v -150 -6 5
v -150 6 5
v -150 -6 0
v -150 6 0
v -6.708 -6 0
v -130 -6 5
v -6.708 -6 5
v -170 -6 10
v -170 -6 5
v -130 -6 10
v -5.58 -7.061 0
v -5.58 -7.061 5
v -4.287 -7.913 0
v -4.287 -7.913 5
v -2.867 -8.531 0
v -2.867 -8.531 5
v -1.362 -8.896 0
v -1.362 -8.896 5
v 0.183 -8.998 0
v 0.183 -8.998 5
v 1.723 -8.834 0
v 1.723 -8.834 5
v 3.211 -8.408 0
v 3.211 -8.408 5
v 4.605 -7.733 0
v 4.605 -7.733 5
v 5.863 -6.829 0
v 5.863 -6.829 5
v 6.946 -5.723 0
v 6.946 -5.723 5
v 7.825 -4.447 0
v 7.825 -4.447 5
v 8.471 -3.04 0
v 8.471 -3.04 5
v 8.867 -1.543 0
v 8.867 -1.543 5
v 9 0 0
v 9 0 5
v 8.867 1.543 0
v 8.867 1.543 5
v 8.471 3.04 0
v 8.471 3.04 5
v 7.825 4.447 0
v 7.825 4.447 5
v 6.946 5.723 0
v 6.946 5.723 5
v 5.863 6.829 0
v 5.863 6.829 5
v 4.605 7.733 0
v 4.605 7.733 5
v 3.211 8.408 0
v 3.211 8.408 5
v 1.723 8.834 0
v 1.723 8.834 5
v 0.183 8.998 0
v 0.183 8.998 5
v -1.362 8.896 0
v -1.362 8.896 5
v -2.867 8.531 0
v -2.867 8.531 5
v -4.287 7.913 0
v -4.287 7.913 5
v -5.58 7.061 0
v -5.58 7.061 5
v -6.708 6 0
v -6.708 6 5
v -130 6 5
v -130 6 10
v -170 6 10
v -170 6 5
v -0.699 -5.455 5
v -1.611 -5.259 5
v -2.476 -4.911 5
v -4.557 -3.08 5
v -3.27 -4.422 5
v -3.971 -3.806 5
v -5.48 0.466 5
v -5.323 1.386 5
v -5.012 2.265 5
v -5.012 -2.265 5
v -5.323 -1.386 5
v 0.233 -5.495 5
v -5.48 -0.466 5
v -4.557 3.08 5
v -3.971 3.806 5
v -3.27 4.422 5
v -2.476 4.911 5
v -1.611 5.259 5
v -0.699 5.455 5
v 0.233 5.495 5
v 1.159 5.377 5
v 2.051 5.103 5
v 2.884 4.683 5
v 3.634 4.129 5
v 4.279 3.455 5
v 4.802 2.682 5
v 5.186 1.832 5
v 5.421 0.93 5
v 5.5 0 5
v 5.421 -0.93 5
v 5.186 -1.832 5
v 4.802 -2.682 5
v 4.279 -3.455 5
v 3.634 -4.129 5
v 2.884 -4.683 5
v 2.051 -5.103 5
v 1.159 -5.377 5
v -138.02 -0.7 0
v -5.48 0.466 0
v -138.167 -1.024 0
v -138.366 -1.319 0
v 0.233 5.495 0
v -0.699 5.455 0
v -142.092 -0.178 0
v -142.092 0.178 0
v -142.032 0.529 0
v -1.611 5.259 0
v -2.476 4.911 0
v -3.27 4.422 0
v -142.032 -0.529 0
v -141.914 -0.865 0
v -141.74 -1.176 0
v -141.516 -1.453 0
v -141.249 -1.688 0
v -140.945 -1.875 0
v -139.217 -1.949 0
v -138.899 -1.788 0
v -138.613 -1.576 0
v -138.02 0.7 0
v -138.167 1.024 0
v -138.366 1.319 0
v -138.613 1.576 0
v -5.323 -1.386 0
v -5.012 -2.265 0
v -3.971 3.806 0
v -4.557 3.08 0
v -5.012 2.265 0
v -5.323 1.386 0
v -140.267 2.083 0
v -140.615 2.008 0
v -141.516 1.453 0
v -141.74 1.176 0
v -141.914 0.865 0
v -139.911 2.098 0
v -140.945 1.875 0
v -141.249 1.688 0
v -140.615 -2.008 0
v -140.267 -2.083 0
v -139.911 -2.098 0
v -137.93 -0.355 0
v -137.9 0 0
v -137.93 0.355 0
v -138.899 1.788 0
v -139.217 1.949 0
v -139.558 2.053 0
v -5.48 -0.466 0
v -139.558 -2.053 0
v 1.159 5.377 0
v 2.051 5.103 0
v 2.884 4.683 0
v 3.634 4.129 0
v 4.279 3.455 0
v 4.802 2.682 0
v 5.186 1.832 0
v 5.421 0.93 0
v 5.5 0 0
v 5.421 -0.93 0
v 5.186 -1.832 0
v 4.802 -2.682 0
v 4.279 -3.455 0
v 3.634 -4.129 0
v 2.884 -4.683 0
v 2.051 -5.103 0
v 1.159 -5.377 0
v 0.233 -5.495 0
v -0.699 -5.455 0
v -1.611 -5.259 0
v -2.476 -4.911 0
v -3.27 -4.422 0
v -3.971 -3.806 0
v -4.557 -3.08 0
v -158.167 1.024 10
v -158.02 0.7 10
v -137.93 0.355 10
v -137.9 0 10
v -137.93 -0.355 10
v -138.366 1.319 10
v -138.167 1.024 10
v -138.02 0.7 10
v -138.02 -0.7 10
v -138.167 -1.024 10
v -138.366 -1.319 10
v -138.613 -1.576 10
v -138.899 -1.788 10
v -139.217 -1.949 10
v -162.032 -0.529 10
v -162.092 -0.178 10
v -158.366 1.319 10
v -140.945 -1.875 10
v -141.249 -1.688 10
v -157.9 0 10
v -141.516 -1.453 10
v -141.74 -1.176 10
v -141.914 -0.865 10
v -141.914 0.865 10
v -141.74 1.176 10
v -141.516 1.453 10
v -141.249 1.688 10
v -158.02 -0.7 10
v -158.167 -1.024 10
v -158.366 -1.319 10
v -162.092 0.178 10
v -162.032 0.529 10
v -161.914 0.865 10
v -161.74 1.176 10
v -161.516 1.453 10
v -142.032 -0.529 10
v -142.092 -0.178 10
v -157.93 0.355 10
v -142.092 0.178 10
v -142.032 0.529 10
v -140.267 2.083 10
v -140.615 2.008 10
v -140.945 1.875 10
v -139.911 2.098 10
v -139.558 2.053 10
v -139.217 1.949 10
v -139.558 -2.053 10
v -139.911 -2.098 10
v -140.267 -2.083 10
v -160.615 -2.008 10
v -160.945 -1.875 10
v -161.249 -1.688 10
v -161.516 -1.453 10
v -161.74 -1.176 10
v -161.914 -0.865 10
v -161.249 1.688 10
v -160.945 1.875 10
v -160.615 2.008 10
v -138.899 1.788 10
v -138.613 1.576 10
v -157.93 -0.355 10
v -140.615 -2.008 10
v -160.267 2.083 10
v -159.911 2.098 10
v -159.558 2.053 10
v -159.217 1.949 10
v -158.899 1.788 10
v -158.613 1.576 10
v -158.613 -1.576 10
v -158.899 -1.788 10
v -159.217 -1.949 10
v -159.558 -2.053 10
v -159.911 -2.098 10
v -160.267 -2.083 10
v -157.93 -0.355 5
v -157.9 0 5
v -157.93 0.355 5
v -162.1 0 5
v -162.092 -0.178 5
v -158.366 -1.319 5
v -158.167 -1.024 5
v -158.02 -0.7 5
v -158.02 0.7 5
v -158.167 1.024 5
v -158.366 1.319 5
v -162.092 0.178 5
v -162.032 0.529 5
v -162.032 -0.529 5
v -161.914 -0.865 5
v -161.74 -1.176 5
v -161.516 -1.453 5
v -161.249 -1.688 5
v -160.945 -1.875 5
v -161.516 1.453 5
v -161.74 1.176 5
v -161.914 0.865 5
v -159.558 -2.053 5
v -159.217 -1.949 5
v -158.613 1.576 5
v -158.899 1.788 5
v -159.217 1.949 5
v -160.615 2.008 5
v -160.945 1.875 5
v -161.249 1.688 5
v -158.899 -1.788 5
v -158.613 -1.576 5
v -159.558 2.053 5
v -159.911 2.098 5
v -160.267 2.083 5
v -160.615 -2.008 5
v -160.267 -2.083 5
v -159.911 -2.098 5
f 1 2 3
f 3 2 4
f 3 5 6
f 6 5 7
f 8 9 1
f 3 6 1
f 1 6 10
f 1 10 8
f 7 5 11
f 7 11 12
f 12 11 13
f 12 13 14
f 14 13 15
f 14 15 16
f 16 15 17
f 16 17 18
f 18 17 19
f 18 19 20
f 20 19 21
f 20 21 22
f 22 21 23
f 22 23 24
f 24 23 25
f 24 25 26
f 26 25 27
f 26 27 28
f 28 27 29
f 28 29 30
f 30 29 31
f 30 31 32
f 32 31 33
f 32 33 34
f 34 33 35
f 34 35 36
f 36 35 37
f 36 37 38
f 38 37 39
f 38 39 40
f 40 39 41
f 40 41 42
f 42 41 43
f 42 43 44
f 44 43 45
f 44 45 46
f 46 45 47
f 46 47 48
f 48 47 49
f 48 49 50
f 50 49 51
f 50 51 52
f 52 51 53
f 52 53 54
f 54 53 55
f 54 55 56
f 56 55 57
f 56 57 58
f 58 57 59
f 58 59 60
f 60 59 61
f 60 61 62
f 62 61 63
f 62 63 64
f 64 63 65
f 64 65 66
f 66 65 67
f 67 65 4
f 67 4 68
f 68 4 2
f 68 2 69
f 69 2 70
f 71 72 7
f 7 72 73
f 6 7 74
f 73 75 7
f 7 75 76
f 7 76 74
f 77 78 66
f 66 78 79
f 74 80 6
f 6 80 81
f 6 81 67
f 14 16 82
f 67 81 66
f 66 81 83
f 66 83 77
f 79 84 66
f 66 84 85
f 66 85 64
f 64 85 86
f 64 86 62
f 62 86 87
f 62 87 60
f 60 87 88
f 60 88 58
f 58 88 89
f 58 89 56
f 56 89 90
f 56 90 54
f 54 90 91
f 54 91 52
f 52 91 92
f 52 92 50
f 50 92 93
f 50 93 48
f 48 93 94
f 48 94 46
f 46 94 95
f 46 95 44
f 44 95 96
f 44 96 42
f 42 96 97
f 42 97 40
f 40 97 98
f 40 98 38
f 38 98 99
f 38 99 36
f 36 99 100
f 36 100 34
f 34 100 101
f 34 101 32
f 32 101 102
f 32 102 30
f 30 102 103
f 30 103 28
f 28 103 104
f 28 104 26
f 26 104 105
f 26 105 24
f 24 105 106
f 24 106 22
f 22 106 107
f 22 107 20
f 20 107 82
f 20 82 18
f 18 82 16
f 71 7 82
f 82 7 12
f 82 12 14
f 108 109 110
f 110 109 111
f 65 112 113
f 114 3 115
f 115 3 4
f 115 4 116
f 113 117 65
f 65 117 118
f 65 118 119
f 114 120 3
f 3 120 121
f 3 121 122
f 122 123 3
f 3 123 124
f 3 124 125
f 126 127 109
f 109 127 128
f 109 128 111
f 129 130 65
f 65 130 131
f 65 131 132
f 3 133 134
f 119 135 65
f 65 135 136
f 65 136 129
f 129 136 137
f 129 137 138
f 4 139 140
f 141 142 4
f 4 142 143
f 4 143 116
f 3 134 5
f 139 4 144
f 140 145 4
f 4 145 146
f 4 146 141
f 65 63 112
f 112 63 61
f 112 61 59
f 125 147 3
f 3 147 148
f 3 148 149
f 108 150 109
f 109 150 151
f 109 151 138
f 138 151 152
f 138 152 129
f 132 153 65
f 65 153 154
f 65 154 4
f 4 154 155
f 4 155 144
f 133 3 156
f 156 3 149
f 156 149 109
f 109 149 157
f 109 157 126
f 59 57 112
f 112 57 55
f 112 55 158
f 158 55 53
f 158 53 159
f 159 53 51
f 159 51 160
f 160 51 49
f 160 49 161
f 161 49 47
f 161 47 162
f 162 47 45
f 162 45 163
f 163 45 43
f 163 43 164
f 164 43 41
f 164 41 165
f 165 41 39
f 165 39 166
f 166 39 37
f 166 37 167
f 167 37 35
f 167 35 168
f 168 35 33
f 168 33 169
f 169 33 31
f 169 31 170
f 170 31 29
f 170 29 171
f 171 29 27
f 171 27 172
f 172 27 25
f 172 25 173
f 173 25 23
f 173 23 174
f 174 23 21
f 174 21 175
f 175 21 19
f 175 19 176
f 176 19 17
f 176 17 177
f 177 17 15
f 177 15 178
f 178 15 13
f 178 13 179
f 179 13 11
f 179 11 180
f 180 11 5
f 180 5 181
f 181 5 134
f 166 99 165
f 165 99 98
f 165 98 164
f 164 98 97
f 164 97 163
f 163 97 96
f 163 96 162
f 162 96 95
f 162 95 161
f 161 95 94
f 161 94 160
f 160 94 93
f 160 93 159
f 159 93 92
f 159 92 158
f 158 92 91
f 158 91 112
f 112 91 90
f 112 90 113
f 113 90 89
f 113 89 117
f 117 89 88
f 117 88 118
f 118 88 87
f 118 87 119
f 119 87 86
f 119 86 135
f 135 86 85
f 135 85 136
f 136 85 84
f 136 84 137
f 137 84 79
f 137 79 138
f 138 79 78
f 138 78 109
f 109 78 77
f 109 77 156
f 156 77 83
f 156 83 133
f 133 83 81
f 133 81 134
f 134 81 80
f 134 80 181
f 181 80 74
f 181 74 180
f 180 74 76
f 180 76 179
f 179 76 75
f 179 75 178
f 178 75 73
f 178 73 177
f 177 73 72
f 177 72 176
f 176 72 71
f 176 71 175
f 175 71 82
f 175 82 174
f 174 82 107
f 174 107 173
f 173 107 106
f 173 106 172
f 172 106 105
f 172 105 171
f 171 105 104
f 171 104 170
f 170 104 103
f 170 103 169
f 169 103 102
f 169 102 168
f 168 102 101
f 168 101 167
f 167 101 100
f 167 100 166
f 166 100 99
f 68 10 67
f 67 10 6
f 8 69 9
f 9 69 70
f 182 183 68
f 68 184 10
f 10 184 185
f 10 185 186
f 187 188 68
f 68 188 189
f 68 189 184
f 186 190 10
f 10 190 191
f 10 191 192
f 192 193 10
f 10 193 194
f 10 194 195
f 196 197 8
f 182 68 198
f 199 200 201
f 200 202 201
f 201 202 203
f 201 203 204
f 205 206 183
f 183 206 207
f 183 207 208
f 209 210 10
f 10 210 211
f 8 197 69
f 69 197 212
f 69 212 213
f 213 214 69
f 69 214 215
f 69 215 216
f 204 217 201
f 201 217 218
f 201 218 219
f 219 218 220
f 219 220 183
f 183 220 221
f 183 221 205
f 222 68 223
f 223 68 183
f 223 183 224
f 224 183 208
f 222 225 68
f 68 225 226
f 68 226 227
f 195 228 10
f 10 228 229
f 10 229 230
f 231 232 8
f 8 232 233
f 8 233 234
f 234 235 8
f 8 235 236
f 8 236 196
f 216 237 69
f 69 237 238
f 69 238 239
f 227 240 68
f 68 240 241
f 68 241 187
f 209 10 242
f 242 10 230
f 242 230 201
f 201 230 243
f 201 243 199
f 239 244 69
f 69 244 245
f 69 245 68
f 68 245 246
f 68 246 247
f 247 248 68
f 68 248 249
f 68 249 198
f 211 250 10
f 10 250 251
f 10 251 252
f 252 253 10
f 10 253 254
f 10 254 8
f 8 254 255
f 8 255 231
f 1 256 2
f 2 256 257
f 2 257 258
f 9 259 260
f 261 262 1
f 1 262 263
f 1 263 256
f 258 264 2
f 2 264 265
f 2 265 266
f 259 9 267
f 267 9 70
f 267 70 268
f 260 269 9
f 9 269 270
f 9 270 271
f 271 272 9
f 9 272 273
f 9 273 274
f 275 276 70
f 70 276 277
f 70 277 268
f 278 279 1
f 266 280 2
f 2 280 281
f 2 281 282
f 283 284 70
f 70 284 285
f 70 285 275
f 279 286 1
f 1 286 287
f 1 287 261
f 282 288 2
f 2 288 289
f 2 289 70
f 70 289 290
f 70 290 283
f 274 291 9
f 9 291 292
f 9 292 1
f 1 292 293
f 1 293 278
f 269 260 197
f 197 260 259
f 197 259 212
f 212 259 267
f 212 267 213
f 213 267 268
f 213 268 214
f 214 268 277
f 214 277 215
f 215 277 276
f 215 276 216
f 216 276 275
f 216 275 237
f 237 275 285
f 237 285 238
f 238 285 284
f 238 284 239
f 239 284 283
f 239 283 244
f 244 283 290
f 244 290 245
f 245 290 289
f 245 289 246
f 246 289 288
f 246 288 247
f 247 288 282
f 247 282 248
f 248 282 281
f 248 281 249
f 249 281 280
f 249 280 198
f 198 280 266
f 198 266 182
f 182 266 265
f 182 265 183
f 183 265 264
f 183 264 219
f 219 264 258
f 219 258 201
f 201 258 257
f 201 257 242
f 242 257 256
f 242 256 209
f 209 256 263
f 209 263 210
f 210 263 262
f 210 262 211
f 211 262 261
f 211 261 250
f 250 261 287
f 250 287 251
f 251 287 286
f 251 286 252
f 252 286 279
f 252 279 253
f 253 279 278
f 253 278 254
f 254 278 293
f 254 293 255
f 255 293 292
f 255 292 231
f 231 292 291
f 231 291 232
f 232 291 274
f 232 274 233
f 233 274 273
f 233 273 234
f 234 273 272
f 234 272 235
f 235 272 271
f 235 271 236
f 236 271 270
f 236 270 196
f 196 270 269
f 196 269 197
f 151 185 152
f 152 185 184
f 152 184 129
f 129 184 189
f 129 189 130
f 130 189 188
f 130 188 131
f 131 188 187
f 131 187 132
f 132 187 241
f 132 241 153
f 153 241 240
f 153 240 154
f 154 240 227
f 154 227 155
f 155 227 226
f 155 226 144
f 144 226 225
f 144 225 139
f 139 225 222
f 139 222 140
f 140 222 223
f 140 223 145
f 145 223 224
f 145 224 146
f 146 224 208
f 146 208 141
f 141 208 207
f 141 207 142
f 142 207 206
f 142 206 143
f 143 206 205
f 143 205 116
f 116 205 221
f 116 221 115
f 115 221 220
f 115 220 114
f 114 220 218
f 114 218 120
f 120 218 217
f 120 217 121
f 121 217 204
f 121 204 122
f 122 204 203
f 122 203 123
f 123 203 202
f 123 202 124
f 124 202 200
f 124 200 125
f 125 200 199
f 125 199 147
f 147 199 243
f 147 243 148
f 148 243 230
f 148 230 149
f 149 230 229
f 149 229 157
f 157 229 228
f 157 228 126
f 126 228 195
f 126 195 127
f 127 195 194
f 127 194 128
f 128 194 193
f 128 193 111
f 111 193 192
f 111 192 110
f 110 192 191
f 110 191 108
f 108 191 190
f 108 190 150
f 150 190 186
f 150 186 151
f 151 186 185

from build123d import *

# Parameters (mm, degrees)
BOSS_EXTRUDE1_DEPTH = 5
SKETCH2_R           = 5.5
CUT_EXTRUDE1_DEPTH  = 151.352918163
SKETCH3_W           = 40
SKETCH3_H           = 12
BOSS_EXTRUDE2_DEPTH = 5
SKETCH4_R           = 2.1
CUT_EXTRUDE2_DEPTH  = 171.531522013


with BuildPart() as part:
    # Sketch1 → Boss-Extrude1 (new body)
    with BuildSketch(Plane.XY):
        with BuildLine():
            Line((-6.708203932, 6), (-150, 6))
            Line((-150, 6), (-150, -6))
            Line((-150, -6), (-6.708203932, -6))
            ThreePointArc((-6.708203932, -6), (9, 0), (-6.708203932, 6))
        make_face()
    extrude(amount=BOSS_EXTRUDE1_DEPTH)

    # Sketch2 → Cut-Extrude1 (cut, through all)
    with BuildSketch(Plane.XY.offset(5)):
        Circle(SKETCH2_R)
    extrude(amount=-CUT_EXTRUDE1_DEPTH, mode=Mode.SUBTRACT)

    # Sketch3 → Boss-Extrude2 (add)
    with BuildSketch(Plane.XY.offset(5)):
        with Locations((-150, 0)):
            Rectangle(SKETCH3_W, SKETCH3_H)
    extrude(amount=BOSS_EXTRUDE2_DEPTH)

    # Sketch4 → Cut-Extrude2 (cut, through all)
    with BuildSketch(Plane.XY.offset(10)):
        with Locations((-160, 0)):
            Circle(SKETCH4_R)
        with Locations((-140, 0)):
            Circle(SKETCH4_R)
    extrude(amount=-CUT_EXTRUDE2_DEPTH, mode=Mode.SUBTRACT)


solid = part.part
